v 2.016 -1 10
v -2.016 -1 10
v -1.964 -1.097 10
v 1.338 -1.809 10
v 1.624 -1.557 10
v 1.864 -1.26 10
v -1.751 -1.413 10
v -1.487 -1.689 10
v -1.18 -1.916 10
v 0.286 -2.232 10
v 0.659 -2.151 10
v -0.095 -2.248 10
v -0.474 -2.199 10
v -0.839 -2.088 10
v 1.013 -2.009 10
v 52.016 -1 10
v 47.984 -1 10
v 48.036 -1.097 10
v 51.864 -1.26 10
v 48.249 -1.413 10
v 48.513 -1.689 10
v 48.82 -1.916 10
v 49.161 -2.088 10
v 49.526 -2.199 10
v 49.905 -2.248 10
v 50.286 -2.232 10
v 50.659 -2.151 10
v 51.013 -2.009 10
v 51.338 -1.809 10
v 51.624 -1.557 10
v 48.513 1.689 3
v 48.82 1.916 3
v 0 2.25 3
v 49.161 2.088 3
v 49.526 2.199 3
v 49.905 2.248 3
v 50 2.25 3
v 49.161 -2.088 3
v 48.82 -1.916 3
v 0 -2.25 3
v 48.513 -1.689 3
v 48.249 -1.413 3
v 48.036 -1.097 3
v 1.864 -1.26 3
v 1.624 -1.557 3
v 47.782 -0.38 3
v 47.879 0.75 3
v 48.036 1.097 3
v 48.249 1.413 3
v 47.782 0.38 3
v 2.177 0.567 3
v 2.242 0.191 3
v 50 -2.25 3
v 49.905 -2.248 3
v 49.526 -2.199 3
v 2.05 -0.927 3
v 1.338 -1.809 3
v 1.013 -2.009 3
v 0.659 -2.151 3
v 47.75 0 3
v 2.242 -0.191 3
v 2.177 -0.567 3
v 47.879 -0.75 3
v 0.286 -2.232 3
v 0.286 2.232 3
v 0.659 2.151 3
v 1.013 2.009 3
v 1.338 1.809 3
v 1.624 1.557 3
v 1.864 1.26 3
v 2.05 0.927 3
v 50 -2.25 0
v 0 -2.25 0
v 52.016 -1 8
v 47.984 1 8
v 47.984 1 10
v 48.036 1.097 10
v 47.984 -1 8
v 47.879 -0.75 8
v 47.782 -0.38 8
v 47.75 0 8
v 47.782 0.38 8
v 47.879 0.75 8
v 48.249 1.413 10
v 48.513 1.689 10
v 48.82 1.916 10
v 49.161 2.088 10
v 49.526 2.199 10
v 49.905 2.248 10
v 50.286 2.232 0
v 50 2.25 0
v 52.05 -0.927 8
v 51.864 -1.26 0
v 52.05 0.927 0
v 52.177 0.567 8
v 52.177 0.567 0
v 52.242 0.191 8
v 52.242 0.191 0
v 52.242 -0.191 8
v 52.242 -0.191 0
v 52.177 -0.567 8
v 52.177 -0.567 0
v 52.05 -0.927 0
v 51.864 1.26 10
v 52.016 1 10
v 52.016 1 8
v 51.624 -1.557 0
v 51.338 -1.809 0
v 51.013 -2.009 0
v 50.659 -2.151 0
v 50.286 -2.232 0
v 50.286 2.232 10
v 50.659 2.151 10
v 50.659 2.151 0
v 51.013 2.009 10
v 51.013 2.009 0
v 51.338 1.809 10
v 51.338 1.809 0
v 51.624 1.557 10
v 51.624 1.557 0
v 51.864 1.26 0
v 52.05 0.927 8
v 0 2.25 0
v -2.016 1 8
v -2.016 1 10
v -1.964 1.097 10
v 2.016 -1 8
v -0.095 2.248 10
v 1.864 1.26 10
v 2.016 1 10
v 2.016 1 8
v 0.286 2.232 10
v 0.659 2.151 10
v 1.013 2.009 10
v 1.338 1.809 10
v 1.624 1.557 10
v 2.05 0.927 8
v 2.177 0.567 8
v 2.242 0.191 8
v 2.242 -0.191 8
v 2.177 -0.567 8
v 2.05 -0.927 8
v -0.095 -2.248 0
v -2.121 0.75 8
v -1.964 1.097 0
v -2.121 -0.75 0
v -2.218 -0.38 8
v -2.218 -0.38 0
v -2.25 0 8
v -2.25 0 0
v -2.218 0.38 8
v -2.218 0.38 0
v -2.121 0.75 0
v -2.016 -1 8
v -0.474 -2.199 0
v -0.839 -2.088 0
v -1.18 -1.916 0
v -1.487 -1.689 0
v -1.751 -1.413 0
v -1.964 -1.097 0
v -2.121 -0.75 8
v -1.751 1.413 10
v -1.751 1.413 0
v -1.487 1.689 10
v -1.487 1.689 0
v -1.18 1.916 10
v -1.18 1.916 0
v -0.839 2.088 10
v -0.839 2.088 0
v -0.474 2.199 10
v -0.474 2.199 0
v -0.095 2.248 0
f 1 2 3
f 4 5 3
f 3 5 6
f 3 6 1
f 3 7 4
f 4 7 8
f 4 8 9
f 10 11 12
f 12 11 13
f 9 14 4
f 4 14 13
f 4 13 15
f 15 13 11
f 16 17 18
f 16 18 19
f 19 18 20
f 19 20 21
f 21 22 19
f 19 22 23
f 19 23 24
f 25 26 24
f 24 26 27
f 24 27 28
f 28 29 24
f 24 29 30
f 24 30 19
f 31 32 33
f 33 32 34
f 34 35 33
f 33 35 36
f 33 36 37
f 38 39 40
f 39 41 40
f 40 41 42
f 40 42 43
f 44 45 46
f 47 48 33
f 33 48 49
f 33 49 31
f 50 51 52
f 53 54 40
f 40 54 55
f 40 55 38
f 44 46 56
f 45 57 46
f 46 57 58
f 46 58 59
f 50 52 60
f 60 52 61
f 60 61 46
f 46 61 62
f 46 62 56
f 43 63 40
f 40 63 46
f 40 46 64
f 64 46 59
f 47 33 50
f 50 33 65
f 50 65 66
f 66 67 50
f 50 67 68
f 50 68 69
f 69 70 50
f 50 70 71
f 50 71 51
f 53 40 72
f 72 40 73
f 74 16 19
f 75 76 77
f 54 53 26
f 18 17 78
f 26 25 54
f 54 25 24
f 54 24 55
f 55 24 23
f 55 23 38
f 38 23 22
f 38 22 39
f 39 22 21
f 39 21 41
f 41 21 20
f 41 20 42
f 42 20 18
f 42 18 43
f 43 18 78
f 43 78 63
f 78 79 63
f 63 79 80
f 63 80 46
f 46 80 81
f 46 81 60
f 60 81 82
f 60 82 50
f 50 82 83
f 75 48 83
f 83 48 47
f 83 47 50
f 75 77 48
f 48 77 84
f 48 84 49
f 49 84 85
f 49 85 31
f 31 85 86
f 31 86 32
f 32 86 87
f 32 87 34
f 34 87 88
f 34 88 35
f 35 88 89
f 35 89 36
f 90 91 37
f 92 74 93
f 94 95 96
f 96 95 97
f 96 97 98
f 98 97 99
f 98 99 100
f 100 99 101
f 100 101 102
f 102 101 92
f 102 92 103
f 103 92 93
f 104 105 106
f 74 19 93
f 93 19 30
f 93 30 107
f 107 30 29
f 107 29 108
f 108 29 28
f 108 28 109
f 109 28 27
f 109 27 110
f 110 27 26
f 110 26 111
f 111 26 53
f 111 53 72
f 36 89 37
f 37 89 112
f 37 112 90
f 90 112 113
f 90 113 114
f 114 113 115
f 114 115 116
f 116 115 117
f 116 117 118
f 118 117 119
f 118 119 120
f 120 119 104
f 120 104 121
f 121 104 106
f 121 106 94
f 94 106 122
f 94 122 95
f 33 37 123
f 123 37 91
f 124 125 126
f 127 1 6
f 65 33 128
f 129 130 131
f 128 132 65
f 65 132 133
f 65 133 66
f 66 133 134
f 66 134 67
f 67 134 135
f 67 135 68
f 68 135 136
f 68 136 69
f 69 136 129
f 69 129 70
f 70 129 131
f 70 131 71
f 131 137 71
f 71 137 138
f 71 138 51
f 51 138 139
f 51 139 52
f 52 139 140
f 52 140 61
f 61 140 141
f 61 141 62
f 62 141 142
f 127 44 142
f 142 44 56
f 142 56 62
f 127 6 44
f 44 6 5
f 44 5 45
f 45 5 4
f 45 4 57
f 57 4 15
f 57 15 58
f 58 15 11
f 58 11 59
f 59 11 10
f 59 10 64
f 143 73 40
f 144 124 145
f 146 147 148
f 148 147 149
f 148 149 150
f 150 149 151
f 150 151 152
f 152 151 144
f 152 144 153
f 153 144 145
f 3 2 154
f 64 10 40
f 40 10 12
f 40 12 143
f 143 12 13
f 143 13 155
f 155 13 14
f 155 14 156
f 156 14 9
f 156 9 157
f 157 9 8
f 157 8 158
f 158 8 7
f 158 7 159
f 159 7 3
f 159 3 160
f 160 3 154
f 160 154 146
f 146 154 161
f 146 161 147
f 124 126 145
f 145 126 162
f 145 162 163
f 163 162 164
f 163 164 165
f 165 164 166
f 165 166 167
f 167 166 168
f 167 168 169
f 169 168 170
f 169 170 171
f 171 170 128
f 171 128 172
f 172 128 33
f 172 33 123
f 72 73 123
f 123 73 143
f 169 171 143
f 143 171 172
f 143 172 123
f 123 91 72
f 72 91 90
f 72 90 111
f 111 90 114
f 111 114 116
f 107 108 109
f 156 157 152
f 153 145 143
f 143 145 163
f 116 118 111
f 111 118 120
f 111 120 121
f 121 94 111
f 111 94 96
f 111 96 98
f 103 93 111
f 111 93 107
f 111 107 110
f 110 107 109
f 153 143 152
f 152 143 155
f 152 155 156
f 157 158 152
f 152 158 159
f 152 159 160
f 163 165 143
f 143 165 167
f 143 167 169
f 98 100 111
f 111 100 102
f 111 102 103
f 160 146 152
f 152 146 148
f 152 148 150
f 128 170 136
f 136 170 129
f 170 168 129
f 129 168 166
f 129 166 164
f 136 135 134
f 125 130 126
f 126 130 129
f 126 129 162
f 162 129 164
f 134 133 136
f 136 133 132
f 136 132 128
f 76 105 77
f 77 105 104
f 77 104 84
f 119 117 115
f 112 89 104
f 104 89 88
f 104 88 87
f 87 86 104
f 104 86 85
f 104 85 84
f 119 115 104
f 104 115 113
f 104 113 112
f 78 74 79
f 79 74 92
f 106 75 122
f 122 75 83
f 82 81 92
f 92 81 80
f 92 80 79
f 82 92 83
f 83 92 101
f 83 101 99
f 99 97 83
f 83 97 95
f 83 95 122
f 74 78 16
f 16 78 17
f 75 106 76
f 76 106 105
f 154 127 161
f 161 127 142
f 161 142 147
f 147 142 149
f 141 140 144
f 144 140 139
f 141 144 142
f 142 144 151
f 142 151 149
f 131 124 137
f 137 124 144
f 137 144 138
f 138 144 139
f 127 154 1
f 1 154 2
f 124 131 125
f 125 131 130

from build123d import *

# Parameters (mm, degrees)
EXTRUDE_1_DEPTH     = 3
SKETCH_1_3_R        = 2.25
EXTRUDE_2_DEPTH     = 10
SKETCH_2_W          = 5
SKETCH_2_H          = 2
CUT_EXTRUDE_1_DEPTH = 2


with BuildPart() as part:
    # 草图1 → 凸台-拉伸1 (new body)
    with BuildSketch(Plane.XY):
        with BuildLine():
            Line((0, -2.25), (50, -2.25))
            ThreePointArc((50, -2.25), (52.25, 0), (50, 2.25))
            Line((50, 2.25), (0, 2.25))
            ThreePointArc((0, 2.25), (-2.25, 0), (0, -2.25))
        make_face()
    extrude(amount=EXTRUDE_1_DEPTH)

    # 草图1<3> → 凸台-拉伸2 (add)
    with BuildSketch(Plane.XY):
        Circle(SKETCH_1_3_R)
        with Locations((50, 0)):
            Circle(SKETCH_1_3_R)
    extrude(amount=EXTRUDE_2_DEPTH)

    # 草图2 → 切除-拉伸1 (cut)
    with BuildSketch(Plane.XY.offset(10)):
        Rectangle(SKETCH_2_W, SKETCH_2_H)
        with Locations((50, 0)):
            Rectangle(SKETCH_2_W, SKETCH_2_H)
    extrude(amount=-CUT_EXTRUDE_1_DEPTH, mode=Mode.SUBTRACT)


solid = part.part
